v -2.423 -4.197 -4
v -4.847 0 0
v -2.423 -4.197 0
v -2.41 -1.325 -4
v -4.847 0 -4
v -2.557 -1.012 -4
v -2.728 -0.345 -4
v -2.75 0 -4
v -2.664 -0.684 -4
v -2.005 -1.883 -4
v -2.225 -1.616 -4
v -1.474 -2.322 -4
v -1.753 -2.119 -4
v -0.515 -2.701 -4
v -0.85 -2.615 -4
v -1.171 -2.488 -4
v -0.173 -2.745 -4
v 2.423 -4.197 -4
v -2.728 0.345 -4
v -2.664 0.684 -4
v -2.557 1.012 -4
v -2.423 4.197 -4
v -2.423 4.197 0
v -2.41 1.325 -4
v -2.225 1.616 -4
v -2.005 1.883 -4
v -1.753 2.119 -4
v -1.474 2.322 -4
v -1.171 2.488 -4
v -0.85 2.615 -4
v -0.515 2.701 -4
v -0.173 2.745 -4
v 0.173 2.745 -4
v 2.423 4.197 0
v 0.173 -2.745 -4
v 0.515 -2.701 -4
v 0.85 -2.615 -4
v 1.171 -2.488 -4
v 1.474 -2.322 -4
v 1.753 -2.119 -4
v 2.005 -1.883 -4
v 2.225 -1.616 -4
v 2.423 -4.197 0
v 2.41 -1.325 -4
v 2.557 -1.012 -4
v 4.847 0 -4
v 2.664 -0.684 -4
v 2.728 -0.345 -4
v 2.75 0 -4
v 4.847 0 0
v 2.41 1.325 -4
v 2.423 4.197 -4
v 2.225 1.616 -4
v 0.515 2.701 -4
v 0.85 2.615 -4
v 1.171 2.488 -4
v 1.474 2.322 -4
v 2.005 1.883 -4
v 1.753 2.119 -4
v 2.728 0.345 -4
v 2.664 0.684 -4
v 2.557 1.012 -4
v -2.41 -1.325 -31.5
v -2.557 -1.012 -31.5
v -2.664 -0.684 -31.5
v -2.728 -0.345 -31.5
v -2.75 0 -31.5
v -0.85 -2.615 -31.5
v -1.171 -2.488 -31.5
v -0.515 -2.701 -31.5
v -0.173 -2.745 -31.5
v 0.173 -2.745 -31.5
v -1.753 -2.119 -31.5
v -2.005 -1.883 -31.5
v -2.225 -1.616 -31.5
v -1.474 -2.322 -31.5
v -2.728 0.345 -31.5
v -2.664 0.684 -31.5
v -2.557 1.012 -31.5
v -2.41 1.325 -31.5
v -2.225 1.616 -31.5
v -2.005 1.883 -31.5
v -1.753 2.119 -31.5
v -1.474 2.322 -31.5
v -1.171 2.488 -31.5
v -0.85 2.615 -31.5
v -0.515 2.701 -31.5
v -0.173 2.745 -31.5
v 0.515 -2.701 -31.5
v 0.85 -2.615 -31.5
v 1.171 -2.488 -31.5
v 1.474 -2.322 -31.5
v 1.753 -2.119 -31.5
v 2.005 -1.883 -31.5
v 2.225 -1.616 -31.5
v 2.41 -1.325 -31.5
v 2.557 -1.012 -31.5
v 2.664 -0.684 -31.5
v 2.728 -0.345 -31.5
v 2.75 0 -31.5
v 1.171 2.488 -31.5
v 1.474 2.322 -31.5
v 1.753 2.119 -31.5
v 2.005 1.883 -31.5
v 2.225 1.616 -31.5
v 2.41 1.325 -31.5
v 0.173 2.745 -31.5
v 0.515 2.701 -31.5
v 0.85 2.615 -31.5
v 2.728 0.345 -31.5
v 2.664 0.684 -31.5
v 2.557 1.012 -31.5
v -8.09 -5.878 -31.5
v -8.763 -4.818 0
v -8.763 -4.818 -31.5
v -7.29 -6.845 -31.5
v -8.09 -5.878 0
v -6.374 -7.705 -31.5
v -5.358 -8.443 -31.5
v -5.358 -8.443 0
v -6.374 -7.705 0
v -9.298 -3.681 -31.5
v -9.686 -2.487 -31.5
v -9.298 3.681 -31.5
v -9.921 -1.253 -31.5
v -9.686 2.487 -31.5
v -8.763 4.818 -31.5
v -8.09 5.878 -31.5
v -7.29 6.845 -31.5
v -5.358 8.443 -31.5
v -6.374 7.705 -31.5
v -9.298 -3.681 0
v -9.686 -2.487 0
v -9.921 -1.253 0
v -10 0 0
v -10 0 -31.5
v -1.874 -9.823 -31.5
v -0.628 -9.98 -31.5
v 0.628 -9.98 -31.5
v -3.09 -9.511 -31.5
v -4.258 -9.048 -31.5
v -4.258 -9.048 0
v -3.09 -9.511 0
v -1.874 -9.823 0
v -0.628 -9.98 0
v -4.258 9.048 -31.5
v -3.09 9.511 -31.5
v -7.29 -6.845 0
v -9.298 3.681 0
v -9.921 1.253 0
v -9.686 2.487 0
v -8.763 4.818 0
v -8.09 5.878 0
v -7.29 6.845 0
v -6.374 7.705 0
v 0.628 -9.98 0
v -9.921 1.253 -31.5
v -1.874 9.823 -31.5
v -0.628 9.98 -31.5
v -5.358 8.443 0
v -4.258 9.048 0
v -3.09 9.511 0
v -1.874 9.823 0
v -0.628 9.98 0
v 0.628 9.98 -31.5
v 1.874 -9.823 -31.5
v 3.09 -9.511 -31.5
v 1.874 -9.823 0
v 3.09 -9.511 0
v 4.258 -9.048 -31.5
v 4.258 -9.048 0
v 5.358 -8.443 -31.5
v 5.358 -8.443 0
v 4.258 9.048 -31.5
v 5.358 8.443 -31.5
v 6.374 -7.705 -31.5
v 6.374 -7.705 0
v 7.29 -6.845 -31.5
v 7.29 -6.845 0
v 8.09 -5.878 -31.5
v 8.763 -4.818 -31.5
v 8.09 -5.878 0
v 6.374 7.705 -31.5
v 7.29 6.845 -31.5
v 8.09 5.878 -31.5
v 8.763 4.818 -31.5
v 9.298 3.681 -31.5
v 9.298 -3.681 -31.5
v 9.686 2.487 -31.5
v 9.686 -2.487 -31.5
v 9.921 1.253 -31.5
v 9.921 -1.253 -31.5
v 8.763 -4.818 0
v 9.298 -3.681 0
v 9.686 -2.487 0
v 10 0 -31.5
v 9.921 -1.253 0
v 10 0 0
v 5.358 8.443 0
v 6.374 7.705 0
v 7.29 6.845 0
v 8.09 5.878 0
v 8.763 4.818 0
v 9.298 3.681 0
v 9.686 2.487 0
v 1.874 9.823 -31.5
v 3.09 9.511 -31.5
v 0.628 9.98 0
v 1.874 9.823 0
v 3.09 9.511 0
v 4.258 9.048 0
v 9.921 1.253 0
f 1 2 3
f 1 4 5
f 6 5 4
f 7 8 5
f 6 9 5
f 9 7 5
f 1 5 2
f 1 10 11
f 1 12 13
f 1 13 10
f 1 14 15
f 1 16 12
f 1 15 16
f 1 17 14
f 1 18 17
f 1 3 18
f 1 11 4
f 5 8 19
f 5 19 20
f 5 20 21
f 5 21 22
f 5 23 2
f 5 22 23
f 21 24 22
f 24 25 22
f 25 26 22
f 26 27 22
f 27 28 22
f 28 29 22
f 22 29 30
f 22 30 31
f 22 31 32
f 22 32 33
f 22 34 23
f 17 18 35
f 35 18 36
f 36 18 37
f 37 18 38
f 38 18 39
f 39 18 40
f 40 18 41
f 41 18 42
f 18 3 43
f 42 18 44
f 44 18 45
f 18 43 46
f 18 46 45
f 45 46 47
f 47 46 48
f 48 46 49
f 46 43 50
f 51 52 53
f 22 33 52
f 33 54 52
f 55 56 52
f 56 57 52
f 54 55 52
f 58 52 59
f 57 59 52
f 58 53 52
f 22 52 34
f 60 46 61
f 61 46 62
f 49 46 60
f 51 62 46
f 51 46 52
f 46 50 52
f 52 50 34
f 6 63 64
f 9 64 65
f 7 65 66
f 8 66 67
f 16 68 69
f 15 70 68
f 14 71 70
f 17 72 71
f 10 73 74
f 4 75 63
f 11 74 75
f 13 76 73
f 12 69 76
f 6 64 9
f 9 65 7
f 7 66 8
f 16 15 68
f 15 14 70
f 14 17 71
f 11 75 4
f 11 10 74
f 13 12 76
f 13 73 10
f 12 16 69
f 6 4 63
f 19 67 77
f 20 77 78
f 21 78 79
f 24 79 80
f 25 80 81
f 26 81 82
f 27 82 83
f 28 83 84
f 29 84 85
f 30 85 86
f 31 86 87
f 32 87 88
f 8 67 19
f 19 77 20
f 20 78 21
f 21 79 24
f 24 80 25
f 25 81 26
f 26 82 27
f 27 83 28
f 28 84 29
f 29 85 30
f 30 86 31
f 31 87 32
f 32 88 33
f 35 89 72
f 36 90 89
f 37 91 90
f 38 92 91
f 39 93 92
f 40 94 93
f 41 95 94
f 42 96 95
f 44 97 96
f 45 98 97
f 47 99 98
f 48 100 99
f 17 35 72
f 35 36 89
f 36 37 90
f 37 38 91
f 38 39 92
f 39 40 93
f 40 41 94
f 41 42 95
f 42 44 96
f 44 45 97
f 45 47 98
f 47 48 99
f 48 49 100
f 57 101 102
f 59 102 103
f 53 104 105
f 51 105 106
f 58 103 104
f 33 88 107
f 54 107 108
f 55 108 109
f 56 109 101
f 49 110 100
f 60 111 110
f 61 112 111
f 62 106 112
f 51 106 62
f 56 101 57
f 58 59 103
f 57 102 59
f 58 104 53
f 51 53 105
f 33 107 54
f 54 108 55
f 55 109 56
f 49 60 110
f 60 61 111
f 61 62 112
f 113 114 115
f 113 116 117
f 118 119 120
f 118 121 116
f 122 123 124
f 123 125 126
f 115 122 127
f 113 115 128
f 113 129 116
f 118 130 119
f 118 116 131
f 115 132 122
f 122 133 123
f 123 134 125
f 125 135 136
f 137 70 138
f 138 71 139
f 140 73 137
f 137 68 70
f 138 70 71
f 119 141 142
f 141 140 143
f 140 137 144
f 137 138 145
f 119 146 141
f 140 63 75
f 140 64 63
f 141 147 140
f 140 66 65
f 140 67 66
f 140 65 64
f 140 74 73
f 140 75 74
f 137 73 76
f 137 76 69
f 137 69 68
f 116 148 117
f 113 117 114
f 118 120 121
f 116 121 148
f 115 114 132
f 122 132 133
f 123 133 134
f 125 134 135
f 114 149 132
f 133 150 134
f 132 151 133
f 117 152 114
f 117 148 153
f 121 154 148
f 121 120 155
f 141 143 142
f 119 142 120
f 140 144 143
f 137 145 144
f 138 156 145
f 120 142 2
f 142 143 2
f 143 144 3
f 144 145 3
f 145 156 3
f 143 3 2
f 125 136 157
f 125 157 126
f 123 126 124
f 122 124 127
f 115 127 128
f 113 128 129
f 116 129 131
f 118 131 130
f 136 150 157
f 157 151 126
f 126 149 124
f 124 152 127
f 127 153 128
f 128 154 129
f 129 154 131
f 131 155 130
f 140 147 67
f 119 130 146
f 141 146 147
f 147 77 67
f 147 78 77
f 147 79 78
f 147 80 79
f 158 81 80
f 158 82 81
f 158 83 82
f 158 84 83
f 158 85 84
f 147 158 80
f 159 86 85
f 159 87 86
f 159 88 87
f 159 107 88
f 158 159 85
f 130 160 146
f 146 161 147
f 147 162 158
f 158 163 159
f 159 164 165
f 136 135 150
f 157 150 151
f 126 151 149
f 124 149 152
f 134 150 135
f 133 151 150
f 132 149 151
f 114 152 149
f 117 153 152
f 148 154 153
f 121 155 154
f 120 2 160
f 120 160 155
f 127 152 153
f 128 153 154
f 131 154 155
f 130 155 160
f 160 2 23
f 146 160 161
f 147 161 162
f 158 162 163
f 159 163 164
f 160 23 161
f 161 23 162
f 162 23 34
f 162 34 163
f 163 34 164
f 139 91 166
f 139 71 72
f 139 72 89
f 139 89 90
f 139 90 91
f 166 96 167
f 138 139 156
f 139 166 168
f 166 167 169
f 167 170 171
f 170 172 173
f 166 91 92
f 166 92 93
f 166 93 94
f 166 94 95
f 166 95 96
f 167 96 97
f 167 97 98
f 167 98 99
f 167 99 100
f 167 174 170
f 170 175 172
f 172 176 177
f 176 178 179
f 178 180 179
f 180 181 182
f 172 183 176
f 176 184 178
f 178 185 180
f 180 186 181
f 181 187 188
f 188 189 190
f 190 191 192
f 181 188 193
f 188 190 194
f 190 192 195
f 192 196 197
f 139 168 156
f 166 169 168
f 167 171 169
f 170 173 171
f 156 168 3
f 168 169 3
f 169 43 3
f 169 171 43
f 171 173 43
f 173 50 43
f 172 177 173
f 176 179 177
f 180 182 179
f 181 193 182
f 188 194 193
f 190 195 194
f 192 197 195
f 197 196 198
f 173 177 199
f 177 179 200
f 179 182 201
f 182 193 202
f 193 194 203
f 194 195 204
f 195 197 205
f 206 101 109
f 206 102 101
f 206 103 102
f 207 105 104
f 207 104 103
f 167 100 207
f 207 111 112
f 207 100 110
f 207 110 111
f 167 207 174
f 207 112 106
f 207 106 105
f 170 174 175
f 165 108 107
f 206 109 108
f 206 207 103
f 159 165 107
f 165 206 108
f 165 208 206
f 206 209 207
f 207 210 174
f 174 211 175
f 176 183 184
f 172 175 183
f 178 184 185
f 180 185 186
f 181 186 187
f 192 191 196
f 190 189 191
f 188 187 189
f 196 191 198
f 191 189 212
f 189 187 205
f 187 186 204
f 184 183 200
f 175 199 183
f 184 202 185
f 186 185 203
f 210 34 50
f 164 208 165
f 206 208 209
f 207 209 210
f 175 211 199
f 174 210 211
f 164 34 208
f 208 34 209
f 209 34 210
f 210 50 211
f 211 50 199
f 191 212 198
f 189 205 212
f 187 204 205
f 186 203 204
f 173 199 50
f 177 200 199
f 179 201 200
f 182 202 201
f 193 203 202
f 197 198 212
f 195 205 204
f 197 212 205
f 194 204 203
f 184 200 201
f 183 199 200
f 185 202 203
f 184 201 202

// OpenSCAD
$fn = 50;


difference() {
	union() {
		translate(v = [0, 0, -31.5000000000]) {
			cylinder(h = 31.5000000000, r = 10.0000000000);
		}
	}
	union() {
		translate(v = [0, 0, 0]) {
			rotate(a = [0, 0, 0]) {
				difference() {
					union() {
						translate(v = [0, 0, -4]) {
							linear_extrude(height = 4) {
								polygon(points = [[4.8468000000, 0.0000000000], [2.4234000000, 4.1974519271], [-2.4234000000, 4.1974519271], [-4.8468000000, 0.0000000000], [-2.4234000000, -4.1974519271], [2.4234000000, -4.1974519271]]);
							}
						}
					}
					union();
				}
			}
		}
		#translate(v = [0, 0, -100.0000000000]) {
			cylinder(h = 200, r = 2.7500000000);
		}
	}
}
